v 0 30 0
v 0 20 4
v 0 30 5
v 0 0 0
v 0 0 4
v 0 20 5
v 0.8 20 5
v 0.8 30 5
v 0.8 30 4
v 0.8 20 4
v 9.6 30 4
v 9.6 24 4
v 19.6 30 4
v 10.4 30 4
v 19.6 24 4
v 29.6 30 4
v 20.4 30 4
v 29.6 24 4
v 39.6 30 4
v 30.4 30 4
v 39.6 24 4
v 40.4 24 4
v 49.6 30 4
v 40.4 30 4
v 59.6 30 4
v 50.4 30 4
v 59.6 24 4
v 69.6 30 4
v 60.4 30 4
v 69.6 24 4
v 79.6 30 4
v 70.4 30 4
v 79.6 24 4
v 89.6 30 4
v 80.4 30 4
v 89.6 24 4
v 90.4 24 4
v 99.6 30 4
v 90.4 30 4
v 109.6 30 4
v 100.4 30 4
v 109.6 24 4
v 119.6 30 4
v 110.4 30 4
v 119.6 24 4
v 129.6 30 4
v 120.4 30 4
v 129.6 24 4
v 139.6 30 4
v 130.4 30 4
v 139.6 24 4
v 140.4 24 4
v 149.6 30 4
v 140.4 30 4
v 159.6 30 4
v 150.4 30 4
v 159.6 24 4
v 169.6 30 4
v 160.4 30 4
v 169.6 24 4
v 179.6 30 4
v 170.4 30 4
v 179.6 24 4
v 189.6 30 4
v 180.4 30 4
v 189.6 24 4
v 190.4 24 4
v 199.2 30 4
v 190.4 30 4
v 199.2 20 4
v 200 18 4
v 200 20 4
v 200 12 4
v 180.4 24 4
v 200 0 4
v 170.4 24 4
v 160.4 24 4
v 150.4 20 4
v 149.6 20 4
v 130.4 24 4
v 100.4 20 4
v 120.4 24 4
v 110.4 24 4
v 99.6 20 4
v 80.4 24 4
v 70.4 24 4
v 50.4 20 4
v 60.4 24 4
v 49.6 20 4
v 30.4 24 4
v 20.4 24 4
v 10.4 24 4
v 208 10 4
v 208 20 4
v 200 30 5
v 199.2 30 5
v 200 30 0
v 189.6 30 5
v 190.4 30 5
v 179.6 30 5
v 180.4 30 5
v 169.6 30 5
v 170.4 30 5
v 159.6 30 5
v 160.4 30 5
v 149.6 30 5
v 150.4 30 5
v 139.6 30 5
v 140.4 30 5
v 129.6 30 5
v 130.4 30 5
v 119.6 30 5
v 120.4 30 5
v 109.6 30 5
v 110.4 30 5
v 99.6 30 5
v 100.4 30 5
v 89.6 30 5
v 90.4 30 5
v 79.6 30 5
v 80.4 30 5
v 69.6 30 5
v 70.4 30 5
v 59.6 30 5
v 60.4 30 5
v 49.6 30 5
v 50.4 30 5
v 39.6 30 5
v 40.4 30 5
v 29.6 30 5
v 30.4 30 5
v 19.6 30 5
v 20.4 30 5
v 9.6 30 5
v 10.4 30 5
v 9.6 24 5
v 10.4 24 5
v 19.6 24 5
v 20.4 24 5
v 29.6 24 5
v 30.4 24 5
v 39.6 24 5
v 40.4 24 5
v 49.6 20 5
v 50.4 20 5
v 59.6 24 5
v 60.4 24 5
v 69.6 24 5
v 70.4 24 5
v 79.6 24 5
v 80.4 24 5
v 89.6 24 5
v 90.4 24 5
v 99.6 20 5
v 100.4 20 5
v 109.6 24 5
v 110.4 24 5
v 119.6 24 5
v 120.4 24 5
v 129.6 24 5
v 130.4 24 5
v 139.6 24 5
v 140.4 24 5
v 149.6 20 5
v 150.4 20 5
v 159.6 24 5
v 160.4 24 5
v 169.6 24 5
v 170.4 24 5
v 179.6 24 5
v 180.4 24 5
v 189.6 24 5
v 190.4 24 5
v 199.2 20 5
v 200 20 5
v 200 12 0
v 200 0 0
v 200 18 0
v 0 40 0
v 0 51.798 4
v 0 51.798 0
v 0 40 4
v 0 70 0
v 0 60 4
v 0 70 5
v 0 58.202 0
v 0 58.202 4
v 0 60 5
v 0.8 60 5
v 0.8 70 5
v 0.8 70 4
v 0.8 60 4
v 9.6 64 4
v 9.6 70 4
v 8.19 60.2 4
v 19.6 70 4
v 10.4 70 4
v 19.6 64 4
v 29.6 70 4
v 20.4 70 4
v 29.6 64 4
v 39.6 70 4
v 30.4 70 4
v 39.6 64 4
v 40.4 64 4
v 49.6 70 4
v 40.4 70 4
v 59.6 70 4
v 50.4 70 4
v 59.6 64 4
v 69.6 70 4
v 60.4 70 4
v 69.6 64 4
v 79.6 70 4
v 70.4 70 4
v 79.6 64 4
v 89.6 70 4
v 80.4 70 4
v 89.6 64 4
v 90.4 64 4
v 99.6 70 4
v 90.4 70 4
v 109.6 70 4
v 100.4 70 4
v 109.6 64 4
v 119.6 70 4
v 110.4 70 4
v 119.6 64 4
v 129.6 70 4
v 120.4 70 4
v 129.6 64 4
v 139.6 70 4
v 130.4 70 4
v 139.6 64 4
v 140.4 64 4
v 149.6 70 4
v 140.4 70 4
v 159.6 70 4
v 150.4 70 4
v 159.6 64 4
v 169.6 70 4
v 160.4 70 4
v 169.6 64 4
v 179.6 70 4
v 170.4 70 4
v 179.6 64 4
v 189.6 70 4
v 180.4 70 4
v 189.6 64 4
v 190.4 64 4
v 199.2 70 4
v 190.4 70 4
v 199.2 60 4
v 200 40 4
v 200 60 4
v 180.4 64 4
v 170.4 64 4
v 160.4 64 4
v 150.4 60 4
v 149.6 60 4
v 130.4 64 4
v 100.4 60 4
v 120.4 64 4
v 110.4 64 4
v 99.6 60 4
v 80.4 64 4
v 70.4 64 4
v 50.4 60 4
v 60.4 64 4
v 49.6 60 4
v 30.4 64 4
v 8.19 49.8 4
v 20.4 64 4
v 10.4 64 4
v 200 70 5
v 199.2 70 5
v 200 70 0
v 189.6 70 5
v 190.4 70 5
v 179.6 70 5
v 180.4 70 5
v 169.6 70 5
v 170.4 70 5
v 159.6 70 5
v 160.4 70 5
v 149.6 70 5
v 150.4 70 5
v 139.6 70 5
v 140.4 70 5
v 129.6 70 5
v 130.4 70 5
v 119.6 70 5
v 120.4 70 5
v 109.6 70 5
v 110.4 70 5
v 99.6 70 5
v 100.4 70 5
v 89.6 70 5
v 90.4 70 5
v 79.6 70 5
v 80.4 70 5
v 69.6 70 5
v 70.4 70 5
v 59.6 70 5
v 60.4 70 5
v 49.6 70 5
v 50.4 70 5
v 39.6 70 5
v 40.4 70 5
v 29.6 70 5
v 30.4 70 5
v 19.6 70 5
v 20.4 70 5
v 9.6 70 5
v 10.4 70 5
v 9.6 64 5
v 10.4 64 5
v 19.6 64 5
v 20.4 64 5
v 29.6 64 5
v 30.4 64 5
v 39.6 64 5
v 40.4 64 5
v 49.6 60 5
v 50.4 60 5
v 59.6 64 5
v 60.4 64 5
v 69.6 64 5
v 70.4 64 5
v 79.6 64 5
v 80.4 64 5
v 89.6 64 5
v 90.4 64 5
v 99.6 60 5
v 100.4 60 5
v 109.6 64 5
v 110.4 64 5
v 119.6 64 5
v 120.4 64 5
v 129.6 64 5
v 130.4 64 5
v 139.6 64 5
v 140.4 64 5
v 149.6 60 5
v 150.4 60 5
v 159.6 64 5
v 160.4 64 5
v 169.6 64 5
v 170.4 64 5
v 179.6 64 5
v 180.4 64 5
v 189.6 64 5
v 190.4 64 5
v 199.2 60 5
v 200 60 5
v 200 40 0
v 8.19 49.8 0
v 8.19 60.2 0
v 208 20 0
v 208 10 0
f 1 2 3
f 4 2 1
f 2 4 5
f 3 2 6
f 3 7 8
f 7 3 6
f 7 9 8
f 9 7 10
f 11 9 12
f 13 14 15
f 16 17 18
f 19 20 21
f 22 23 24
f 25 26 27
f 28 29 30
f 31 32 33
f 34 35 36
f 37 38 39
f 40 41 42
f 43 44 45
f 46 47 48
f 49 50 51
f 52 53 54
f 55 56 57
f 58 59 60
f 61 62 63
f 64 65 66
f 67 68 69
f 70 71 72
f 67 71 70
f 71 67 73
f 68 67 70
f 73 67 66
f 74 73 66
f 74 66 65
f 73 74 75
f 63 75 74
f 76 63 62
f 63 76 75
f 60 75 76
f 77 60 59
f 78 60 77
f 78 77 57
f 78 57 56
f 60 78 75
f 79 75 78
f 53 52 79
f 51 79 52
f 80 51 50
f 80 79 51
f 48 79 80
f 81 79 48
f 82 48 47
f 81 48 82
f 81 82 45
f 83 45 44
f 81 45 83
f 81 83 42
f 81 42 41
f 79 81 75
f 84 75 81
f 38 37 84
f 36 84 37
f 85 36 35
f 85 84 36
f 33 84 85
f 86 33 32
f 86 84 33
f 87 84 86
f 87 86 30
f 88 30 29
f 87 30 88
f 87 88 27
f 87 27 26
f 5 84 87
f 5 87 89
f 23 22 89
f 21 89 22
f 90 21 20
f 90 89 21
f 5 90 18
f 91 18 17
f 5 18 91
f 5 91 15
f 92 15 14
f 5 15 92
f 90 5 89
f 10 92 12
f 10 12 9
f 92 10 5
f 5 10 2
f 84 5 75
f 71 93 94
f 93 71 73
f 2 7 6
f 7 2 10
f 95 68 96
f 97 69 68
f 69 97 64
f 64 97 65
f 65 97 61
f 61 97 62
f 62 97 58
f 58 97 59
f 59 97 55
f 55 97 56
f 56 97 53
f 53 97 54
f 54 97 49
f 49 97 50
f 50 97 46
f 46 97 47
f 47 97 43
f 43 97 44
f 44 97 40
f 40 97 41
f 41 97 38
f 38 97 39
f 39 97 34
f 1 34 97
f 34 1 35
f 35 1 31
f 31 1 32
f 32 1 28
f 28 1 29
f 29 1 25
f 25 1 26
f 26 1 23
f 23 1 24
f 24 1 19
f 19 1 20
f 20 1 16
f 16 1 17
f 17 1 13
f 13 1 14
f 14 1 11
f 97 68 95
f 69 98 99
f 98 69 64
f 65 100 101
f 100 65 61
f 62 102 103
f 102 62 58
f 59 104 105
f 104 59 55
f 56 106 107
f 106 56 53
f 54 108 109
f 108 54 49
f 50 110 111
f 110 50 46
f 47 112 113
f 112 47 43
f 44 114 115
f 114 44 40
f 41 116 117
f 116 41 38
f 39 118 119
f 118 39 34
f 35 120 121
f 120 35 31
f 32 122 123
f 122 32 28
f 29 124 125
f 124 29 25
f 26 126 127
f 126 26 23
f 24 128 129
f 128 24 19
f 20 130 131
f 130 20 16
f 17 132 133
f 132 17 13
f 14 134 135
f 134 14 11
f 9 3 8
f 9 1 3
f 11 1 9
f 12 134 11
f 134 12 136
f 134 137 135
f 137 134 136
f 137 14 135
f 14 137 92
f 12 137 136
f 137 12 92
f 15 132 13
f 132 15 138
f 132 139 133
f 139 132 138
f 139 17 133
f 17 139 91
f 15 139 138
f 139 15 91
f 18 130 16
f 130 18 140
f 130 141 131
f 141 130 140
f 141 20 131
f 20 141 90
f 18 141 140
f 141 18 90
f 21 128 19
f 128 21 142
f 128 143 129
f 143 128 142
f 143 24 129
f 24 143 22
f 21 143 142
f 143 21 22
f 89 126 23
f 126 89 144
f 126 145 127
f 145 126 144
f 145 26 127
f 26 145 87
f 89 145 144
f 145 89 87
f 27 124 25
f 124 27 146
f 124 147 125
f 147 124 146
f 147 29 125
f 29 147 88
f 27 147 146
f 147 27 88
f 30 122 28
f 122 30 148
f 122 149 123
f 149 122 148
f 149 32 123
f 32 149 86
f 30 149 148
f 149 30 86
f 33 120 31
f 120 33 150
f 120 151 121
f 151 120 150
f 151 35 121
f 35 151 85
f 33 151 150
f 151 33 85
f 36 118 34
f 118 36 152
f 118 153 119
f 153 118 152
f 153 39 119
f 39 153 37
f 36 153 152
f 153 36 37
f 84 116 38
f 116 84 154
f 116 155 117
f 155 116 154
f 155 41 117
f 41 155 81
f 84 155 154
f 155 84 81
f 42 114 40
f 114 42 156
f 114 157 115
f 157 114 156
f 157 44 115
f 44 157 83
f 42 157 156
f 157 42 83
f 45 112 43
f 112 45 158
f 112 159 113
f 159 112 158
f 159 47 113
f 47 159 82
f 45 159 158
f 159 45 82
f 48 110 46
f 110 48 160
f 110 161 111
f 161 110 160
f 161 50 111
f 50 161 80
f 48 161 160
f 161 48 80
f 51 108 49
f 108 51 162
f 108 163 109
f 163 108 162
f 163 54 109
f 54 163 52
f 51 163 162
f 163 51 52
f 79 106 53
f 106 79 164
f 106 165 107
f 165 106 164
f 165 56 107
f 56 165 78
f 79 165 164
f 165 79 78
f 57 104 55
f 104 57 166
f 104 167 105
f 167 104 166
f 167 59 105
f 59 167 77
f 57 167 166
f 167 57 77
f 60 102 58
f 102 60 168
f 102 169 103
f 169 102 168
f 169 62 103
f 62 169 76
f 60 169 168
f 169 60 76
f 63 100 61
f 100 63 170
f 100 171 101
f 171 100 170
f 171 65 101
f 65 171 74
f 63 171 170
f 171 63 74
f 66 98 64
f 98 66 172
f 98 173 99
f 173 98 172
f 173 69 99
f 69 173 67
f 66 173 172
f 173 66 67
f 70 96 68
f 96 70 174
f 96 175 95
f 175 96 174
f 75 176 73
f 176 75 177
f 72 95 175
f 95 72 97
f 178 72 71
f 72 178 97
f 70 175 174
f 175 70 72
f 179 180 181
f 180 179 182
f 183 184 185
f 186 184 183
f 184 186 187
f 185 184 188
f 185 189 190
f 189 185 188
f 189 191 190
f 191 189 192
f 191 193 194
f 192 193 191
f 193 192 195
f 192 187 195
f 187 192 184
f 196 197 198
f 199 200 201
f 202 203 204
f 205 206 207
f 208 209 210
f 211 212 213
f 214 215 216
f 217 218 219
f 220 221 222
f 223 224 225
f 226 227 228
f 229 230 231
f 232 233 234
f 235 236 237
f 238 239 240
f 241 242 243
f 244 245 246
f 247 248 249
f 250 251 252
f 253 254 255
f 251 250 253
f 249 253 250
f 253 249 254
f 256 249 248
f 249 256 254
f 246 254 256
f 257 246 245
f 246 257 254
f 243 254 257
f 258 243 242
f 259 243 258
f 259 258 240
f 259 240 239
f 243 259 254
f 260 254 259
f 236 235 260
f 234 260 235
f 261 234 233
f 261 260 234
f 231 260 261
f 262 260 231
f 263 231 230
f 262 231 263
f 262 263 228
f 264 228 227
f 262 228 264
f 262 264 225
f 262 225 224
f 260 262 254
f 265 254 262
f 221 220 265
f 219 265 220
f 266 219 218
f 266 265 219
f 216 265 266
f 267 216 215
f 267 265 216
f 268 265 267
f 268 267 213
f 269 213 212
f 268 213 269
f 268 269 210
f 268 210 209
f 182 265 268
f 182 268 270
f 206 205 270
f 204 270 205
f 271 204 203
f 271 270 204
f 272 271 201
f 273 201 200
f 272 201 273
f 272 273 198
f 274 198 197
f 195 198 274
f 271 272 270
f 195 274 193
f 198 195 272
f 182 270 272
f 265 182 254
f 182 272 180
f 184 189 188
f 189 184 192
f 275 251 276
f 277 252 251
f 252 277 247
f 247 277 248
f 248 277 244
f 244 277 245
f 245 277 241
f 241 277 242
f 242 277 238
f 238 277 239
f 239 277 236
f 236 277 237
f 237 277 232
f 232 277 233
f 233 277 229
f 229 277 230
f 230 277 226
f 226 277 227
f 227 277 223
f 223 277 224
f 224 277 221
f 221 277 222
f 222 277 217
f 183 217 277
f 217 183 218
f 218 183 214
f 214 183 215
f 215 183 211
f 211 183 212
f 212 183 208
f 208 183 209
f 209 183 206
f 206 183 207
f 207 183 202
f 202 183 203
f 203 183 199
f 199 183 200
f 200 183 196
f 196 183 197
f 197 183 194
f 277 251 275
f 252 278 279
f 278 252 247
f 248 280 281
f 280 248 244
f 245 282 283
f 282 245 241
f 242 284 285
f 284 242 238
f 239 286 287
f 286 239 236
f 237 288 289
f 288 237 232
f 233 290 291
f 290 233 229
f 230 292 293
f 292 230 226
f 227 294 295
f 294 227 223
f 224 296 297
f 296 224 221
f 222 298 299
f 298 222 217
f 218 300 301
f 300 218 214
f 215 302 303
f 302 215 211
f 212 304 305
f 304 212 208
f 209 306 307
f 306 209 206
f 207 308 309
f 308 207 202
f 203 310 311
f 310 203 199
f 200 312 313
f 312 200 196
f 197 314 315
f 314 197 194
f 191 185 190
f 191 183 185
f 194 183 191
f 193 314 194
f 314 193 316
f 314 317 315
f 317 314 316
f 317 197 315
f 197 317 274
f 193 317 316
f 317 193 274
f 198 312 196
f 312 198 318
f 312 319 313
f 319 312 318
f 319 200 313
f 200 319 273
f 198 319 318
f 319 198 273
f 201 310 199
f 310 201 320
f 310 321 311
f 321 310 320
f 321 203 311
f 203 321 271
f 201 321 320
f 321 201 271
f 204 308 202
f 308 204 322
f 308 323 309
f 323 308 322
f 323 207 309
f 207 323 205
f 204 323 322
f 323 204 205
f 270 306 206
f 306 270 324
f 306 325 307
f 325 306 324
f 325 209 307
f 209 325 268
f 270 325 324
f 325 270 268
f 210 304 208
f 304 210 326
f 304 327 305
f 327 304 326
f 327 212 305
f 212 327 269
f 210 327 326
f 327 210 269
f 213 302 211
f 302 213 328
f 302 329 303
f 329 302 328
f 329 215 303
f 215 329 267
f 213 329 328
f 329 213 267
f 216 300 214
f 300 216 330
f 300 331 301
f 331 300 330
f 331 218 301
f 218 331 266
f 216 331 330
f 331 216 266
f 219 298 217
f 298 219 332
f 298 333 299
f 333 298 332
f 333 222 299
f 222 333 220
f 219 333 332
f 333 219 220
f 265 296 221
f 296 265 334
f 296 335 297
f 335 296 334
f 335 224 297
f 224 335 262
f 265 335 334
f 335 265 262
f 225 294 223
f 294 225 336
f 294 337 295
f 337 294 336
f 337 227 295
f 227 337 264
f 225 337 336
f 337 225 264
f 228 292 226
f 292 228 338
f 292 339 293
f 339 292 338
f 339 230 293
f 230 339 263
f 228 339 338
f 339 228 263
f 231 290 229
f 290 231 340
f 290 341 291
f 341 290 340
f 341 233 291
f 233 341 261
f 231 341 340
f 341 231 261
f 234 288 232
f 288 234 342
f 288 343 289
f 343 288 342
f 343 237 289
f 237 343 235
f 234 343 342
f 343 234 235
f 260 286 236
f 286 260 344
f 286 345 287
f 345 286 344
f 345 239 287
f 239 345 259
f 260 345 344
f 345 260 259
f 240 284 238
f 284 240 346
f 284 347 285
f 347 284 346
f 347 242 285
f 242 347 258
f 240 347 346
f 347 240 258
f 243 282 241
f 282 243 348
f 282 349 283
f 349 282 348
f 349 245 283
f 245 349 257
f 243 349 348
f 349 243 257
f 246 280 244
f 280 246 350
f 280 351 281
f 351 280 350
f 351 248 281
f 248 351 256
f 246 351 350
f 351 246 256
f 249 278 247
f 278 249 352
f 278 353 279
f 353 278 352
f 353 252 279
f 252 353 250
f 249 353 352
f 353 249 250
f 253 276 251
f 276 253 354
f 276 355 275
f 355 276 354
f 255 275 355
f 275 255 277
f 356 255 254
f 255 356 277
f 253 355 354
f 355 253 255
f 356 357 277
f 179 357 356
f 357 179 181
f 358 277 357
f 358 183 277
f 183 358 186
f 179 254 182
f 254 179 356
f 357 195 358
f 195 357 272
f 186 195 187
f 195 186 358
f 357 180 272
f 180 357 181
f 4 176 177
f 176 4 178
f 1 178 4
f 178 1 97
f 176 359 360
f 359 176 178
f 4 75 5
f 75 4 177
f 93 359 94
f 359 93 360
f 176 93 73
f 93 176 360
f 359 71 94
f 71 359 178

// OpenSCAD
// LY-06 · Regla de 400 mm en dos mitades con cola de milano
// Diseño e Impresión 3D en el aula · Pablo Moraga · CC BY-NC-ND 4.0
$fn = 64;
g = 0.2;                                     // holgura
module cola(e = 0) linear_extrude(4 + (e > 0 ? 2 : 0)) polygon([[0, -3 - e], [8 + e, -5 - e], [8 + e, 5 + e], [0, 3 + e]]);
module marcas(x0) for (i = [0:20]) translate([i * 10 - 0.4 + (i == 0 ? 0.4 : 0) - (i == 20 ? 0.4 : 0), 30 - ((i + x0) % 5 == 0 ? 10 : 6), 4]) cube([0.8, (i + x0) % 5 == 0 ? 10 : 6, 1]);
// Mitad A: 0–200 mm con saliente
cube([200, 30, 4]); translate([200, 15, 0]) cola(); marcas(0);
// Mitad B: 200–400 mm con hueco (impresa al lado)
translate([0, 40, 0]) difference() {
  union() { cube([200, 30, 4]); marcas(0); }
  translate([-0.01, 15, -1]) cola(g);
}
